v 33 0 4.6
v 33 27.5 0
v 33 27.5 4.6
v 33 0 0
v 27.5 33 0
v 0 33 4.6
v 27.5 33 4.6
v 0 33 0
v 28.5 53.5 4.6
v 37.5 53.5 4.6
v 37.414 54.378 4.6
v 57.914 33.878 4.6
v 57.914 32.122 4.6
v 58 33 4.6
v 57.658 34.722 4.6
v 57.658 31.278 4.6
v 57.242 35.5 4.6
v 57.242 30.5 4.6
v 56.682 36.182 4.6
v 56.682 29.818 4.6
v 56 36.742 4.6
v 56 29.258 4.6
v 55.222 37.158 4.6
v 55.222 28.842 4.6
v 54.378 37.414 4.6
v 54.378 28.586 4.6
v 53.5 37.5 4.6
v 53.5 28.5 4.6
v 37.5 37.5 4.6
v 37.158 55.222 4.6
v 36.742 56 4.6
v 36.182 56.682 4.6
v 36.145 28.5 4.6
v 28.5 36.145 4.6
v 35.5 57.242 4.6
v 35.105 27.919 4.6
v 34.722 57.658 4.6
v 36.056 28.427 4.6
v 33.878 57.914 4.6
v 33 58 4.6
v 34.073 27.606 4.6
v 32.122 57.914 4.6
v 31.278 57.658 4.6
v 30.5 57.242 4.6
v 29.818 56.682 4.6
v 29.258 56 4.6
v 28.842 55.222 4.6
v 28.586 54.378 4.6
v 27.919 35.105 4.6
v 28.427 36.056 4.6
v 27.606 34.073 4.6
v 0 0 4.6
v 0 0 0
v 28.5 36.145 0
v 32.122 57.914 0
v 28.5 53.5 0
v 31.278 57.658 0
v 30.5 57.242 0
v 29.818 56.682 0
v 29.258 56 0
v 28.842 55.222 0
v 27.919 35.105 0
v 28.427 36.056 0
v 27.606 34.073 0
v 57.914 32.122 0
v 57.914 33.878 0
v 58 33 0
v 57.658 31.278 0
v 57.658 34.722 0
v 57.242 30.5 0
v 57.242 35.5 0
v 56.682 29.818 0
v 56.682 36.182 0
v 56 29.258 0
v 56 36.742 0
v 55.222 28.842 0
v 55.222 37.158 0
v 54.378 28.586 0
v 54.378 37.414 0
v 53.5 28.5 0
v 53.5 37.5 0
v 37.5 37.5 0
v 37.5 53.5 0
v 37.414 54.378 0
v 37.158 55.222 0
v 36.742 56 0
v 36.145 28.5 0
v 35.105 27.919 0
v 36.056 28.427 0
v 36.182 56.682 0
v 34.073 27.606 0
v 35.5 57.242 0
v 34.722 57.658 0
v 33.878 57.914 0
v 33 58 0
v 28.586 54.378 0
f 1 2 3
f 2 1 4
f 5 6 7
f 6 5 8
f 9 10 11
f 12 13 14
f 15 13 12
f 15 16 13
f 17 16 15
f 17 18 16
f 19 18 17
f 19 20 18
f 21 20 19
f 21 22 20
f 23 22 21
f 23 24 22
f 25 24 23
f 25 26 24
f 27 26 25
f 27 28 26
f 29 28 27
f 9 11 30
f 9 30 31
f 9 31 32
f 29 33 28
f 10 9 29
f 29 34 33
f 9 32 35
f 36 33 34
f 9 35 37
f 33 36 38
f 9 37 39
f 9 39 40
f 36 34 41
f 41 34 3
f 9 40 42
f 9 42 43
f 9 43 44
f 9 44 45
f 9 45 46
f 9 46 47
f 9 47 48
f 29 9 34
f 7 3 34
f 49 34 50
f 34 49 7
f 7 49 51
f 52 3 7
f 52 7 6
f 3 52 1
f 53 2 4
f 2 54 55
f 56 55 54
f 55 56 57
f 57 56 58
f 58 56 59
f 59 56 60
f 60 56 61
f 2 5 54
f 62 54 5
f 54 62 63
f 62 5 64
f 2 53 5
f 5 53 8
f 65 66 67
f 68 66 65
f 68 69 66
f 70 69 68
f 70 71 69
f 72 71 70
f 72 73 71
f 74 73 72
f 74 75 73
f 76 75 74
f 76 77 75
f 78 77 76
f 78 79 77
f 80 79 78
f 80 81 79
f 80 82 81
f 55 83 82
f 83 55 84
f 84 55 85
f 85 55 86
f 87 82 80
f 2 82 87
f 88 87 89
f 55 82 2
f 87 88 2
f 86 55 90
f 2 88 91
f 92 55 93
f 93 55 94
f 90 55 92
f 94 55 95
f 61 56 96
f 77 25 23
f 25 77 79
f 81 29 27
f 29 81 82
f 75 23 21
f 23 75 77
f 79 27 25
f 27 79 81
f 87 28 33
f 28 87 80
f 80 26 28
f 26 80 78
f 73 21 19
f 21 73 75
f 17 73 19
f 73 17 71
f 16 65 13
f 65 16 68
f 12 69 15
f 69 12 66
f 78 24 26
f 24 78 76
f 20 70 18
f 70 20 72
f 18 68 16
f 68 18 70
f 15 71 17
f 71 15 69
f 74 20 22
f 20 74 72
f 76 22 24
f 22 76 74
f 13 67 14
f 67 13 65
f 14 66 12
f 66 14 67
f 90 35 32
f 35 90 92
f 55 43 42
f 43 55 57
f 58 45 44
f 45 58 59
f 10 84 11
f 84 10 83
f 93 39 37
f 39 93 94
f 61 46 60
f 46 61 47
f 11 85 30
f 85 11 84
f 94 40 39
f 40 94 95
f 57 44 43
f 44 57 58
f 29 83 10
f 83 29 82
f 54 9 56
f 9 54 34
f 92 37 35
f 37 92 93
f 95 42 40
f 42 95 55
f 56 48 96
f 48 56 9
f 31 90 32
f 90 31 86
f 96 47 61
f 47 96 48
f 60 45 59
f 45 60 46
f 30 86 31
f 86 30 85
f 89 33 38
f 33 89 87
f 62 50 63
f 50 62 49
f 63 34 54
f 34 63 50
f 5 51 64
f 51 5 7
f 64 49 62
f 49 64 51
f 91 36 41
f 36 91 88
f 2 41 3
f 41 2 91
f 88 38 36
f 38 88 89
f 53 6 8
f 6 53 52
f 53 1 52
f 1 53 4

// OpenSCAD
// file: humidity-output-v2-params.scad
// Humidity-Output V2 Duct Mount — Parameters
// V2 changes from V1:
//   - Spigot OD reduced: 108 -> 106mm (duct wire rings could not slide over at 108)
//   - Spigot ID follows: 98 -> 96mm (wall stays 5mm)
//   - Lead-in taper at spigot top: OD tapers 106 -> 100mm over 8mm
//   - Internal fins start at z=0 (was z=5), fixing unsupported first layers

// === Waffle Grid (matches bin lid, same as fan-tub-adapter) ===
ho2_square_size  = 63.7;    // mm — waffle square side
ho2_channel_w    = 9.4;     // mm — channel width
ho2_waffle_h     = 4.6;     // mm — waffle square height (sets outer plate thickness)
ho2_cutout       = 2 * ho2_square_size + ho2_channel_w;  // 136.8mm — lid opening
ho2_corner_r     = 4;       // mm — waffle corner radius
ho2_flange_w     = ho2_channel_w / 2;  // 4.7mm
ho2_frame_outer  = ho2_cutout + 2 * ho2_flange_w;  // 146.2mm
ho2_branch_root  = ho2_cutout / 2 + ho2_channel_w / 2;  // 73.1mm — fork center from origin
ho2_branch_w     = 9.0;     // mm — branch arm width
ho2_branch_len   = 25;      // mm — arm engagement into channel from root

// === Base Plate ===
ho2_frame_t_outer = ho2_waffle_h;   // 4.6mm — outer plate, flush with waffle tops
ho2_inner_pad_t   = 5.0;           // mm — inner zone thickness
ho2_inner_pad_size = 130;          // mm — inner pad square side (covers spigot base)
ho2_inner_pad_r   = 8;             // mm — inner pad corner radius

// === Duct Spigot (V2: reduced OD) ===
ho2_spigot_od    = 106;    // mm — spigot outer diameter (reduced from 108 in v1)
ho2_spigot_wall  = 5;      // mm — wall thickness (structural, withstands clamp load)
ho2_spigot_id    = ho2_spigot_od - 2 * ho2_spigot_wall;  // 96mm — airflow bore

// === Lead-In Taper (NEW in V2) ===
ho2_taper_height = 8;      // mm — axial height of taper zone at spigot top
ho2_taper_tip_od = 100;    // mm — OD at top of taper (tip)

// === Fins ===
ho2_fin_count    = 6;      // fins of each type, evenly spaced at 60 deg

ho2_fin_int_t       = 2;   // mm — internal fin tangential thickness
ho2_fin_int_d_base  = 6;   // mm — internal fin radial depth (full depth)
ho2_fin_int_taper_z = 10;  // mm — axial taper zone at top (depth fades 6->0)
ho2_fin_wall_lap    = 1;   // mm — overlap into spigot wall (avoids coincident face)

ho2_fin_ext_t    = 3;      // mm — external shark fin tangential thickness
ho2_fin_ext_r    = 9;      // mm — external shark fin radial protrusion at base

// === Seal Zone Geometry ===
ho2_foam_w       = 19;     // mm — groove axial width (matches 3/4" foam tape)
ho2_foam_groove_d = 2.5;   // mm — groove depth into spigot OD
ho2_foam_groove_chamfer_h = ho2_foam_groove_d;  // mm — 45° chamfer height at groove top (= groove depth for exact 45°)

ho2_lower_ridge_h = 4;     // mm — protrusion above spigot OD surface (was 3; increased for 45° chamfer)
ho2_lower_ridge_w = 5;     // mm — axial width of ridge (was 4; preserves 1mm flat top)
ho2_lower_ridge_od = 114;  // mm — ridge OD (4mm radial protrusion per side over 106mm spigot OD)

// === Vertical Stackup (Z from base plate bottom) ===
ho2_z_spigot_start    = ho2_inner_pad_t;                                      // 5.0
ho2_z_lower_ridge_bot = ho2_z_spigot_start + 15;                              // 20.0
ho2_z_lower_ridge_top = ho2_z_lower_ridge_bot + ho2_lower_ridge_w;            // 25.0
ho2_z_foam_bot        = ho2_z_lower_ridge_top;                                 // 25.0
ho2_z_foam_top        = ho2_z_foam_bot + ho2_foam_w;                           // 44.0
ho2_z_spigot_top      = ho2_z_foam_top + 18;                                  // 62.0
ho2_z_taper_start     = ho2_z_spigot_top - ho2_taper_height;                  // 54.0

// External shark fin height: fills from spigot start up to 2mm below lower ridge bottom.
ho2_fin_ext_h    = ho2_z_lower_ridge_bot - ho2_z_spigot_start - 2;  // 13mm

// Internal fin Z start (V2: starts at z=0, not z=5)
ho2_fin_int_z_start = 0;   // mm — fins start at bed level for full support

// === Bounding Box ===
ho2_bbox_x = 2 * (ho2_branch_root + ho2_branch_len);  // 196.2mm
ho2_bbox_y = ho2_bbox_x;
ho2_bbox_z = ho2_z_spigot_top;                         // 62.0mm
// file: common.scad
// Common FDM helper modules
// Include fdm-pla.scad before using these.

include <fdm-pla.scad>

// A hole compensated for FDM shrinkage.
// d = nominal diameter, h = depth, center = center vertically
module fdm_hole(d, h, center=false) {
  cylinder(d=d + FDM_HOLE_COMPENSATION, h=h, center=center, $fn=max(32, ceil(d*4)));
}

// A shaft/pin sized for press fit into a compensated hole.
// d = nominal diameter, h = height
module fdm_shaft(d, h, center=false) {
  cylinder(d=d + FDM_PRESS_FIT * 2, h=h, center=center, $fn=max(32, ceil(d*4)));
}

// Bolt pattern — places children at evenly spaced points on a circle.
// n = number of bolts, r = bolt circle radius
module bolt_pattern(n, r) {
  for (i = [0 : n-1]) {
    angle = i * 360 / n;
    translate([r * cos(angle), r * sin(angle), 0])
      children();
  }
}

// Cylinder with a 45° chamfer on the bottom edge.
// d = diameter, h = height, chamfer = chamfer size
module chamfer_cylinder(d, h, chamfer=0.5) {
  union() {
    // Main body above chamfer
    translate([0, 0, chamfer])
      cylinder(d=d, h=h - chamfer, $fn=max(32, ceil(d*4)));
    // Chamfer cone
    cylinder(d1=d - chamfer*2, d2=d, h=chamfer, $fn=max(32, ceil(d*4)));
  }
}
// file: bambu-x1c.scad
// Bambu Lab X1 Carbon — build volume and dimension reporting

BED_X = 256;
BED_Y = 256;
BED_Z = 256;

// Assert a part fits within the build volume.
// Call with the bounding box dimensions of your part.
module assert_fits(x, y, z) {
  assert(x <= BED_X, str("Part X (", x, "mm) exceeds bed X (", BED_X, "mm)"));
  assert(y <= BED_Y, str("Part Y (", y, "mm) exceeds bed Y (", BED_Y, "mm)"));
  assert(z <= BED_Z, str("Part Z (", z, "mm) exceeds bed Z (", BED_Z, "mm)"));
}

// Echo dimensions in a parseable format for the Node.js pipeline.
// Call at the end of your .scad file with the part's bounding box.
module report_dimensions(x, y, z, label="part") {
  assert_fits(x, y, z);
  echo(str("DIMENSION:", label, ":x=", x));
  echo(str("DIMENSION:", label, ":y=", y));
  echo(str("DIMENSION:", label, ":z=", z));
}
// file: fdm-pla.scad
// FDM PLA Tolerance Constants
// Use these in all designs to ensure proper fit on the Bambu X1C.

// Fit offsets (applied to radius or per-side dimension)
FDM_PRESS_FIT     = -0.15;  // Friction-held joints
FDM_CLEARANCE_FIT =  0.25;  // Easy insert/remove
FDM_SLIDING_FIT   =  0.35;  // Moving parts

// Hole compensation (applied to diameter)
FDM_HOLE_COMPENSATION = 0.4;

// Structural minimums
MIN_WALL = 1.2;       // 3 perimeters at 0.4mm nozzle
MIN_FLOOR_CEIL = 0.8; // 4 layers at 0.2mm

// Overhang and bridging limits
MAX_OVERHANG_ANGLE = 45;  // degrees from vertical
MAX_BRIDGE_SPAN    = 10;  // mm unsupported horizontal span

// Layer and nozzle
NOZZLE_DIA   = 0.4;
LAYER_HEIGHT = 0.2;
// main file
// Y-Branch Channel Fit Test Print
// Minimal-material test piece: single corner Y-branch fork from humidity-output-v2.
// Verifies that 9.0mm arm width fits into 9.4mm waffle grid channels (0.2mm/side clearance).

include <fdm-pla.scad>
include <bambu-x1c.scad>
include <common.scad>
include <humidity-output-v2-params.scad>

$fn = 80;

// === Test piece sizing ===
// We extract corner 0 (+X, +Y) fork from the parent design.
// The root is at (ho2_branch_root, ho2_branch_root) in parent coordinates.
// We clip a section of the outer plate around the root for structural support
// and bed adhesion, then include both arms at full length.

// How far the base plate extends inward from the root center in each axis.
// The outer frame edge is at ho2_frame_outer/2 = 73.1mm from parent origin,
// which coincides with the root center. So the plate extends inward.
base_clip = 33;  // mm of base plate inward from root

// Arm tip position relative to root center (endpoint of hull cylinder center)
arm_tip_offset = ho2_branch_len - ho2_branch_w / 2;  // 20.5mm

// Bounding box calculation:
// X direction: base extends base_clip inward from root, arm extends
//   arm_tip_offset + branch_w/2 outward from root
// Same for Y direction.
test_extent_inward = base_clip;
test_extent_outward = arm_tip_offset + ho2_branch_w / 2;  // 25mm

test_x = test_extent_inward + test_extent_outward;  // 55mm
test_y = test_x;  // symmetric
test_z = ho2_frame_t_outer;  // 4.6mm

// We translate the parent geometry so the root center is at
// (test_extent_inward, test_extent_inward) in the test piece coordinates.
// That way the piece runs from (0,0) to (test_x, test_y).
translate_offset = test_extent_inward - ho2_branch_root;

// Report dimensions -- arms plus base plate clip
// The actual bbox is driven by the arm tips and the plate clip extent
report_x = test_x;
report_y = test_y;
report_z = test_z;

report_dimensions(report_x, report_y, report_z, "yBranchChannelFit");

// === Geometry ===
// Build the fork + plate clip, then intersect with a bounding box to trim
// the plate to only the region we want.

intersection() {
    // Bounding box for the test piece
    translate([translate_offset + ho2_branch_root - test_extent_inward,
               translate_offset + ho2_branch_root - test_extent_inward, 0])
        cube([test_x, test_y, test_z + 1]);

    // Full geometry from parent, translated so root is at the right place
    translate([translate_offset, translate_offset, 0]) {
        union() {
            // Outer plate (clipped by intersection)
            linear_extrude(ho2_frame_t_outer)
                offset(r=ho2_corner_r) offset(r=-ho2_corner_r)
                    square([ho2_frame_outer, ho2_frame_outer], center=true);

            // Y-branch fork for corner 0 (+X, +Y)
            // X-direction arm
            hull() {
                translate([ho2_branch_root, ho2_branch_root, 0])
                    cylinder(d=ho2_branch_w, h=ho2_frame_t_outer, $fn=32);
                translate([ho2_branch_root + arm_tip_offset, ho2_branch_root, 0])
                    cylinder(d=ho2_branch_w, h=ho2_frame_t_outer, $fn=32);
            }
            // Y-direction arm
            hull() {
                translate([ho2_branch_root, ho2_branch_root, 0])
                    cylinder(d=ho2_branch_w, h=ho2_frame_t_outer, $fn=32);
                translate([ho2_branch_root, ho2_branch_root + arm_tip_offset, 0])
                    cylinder(d=ho2_branch_w, h=ho2_frame_t_outer, $fn=32);
            }
            // Root blob
            translate([ho2_branch_root, ho2_branch_root, 0])
                cylinder(d=ho2_branch_w + 2, h=ho2_frame_t_outer, $fn=32);
        }
    }
}
